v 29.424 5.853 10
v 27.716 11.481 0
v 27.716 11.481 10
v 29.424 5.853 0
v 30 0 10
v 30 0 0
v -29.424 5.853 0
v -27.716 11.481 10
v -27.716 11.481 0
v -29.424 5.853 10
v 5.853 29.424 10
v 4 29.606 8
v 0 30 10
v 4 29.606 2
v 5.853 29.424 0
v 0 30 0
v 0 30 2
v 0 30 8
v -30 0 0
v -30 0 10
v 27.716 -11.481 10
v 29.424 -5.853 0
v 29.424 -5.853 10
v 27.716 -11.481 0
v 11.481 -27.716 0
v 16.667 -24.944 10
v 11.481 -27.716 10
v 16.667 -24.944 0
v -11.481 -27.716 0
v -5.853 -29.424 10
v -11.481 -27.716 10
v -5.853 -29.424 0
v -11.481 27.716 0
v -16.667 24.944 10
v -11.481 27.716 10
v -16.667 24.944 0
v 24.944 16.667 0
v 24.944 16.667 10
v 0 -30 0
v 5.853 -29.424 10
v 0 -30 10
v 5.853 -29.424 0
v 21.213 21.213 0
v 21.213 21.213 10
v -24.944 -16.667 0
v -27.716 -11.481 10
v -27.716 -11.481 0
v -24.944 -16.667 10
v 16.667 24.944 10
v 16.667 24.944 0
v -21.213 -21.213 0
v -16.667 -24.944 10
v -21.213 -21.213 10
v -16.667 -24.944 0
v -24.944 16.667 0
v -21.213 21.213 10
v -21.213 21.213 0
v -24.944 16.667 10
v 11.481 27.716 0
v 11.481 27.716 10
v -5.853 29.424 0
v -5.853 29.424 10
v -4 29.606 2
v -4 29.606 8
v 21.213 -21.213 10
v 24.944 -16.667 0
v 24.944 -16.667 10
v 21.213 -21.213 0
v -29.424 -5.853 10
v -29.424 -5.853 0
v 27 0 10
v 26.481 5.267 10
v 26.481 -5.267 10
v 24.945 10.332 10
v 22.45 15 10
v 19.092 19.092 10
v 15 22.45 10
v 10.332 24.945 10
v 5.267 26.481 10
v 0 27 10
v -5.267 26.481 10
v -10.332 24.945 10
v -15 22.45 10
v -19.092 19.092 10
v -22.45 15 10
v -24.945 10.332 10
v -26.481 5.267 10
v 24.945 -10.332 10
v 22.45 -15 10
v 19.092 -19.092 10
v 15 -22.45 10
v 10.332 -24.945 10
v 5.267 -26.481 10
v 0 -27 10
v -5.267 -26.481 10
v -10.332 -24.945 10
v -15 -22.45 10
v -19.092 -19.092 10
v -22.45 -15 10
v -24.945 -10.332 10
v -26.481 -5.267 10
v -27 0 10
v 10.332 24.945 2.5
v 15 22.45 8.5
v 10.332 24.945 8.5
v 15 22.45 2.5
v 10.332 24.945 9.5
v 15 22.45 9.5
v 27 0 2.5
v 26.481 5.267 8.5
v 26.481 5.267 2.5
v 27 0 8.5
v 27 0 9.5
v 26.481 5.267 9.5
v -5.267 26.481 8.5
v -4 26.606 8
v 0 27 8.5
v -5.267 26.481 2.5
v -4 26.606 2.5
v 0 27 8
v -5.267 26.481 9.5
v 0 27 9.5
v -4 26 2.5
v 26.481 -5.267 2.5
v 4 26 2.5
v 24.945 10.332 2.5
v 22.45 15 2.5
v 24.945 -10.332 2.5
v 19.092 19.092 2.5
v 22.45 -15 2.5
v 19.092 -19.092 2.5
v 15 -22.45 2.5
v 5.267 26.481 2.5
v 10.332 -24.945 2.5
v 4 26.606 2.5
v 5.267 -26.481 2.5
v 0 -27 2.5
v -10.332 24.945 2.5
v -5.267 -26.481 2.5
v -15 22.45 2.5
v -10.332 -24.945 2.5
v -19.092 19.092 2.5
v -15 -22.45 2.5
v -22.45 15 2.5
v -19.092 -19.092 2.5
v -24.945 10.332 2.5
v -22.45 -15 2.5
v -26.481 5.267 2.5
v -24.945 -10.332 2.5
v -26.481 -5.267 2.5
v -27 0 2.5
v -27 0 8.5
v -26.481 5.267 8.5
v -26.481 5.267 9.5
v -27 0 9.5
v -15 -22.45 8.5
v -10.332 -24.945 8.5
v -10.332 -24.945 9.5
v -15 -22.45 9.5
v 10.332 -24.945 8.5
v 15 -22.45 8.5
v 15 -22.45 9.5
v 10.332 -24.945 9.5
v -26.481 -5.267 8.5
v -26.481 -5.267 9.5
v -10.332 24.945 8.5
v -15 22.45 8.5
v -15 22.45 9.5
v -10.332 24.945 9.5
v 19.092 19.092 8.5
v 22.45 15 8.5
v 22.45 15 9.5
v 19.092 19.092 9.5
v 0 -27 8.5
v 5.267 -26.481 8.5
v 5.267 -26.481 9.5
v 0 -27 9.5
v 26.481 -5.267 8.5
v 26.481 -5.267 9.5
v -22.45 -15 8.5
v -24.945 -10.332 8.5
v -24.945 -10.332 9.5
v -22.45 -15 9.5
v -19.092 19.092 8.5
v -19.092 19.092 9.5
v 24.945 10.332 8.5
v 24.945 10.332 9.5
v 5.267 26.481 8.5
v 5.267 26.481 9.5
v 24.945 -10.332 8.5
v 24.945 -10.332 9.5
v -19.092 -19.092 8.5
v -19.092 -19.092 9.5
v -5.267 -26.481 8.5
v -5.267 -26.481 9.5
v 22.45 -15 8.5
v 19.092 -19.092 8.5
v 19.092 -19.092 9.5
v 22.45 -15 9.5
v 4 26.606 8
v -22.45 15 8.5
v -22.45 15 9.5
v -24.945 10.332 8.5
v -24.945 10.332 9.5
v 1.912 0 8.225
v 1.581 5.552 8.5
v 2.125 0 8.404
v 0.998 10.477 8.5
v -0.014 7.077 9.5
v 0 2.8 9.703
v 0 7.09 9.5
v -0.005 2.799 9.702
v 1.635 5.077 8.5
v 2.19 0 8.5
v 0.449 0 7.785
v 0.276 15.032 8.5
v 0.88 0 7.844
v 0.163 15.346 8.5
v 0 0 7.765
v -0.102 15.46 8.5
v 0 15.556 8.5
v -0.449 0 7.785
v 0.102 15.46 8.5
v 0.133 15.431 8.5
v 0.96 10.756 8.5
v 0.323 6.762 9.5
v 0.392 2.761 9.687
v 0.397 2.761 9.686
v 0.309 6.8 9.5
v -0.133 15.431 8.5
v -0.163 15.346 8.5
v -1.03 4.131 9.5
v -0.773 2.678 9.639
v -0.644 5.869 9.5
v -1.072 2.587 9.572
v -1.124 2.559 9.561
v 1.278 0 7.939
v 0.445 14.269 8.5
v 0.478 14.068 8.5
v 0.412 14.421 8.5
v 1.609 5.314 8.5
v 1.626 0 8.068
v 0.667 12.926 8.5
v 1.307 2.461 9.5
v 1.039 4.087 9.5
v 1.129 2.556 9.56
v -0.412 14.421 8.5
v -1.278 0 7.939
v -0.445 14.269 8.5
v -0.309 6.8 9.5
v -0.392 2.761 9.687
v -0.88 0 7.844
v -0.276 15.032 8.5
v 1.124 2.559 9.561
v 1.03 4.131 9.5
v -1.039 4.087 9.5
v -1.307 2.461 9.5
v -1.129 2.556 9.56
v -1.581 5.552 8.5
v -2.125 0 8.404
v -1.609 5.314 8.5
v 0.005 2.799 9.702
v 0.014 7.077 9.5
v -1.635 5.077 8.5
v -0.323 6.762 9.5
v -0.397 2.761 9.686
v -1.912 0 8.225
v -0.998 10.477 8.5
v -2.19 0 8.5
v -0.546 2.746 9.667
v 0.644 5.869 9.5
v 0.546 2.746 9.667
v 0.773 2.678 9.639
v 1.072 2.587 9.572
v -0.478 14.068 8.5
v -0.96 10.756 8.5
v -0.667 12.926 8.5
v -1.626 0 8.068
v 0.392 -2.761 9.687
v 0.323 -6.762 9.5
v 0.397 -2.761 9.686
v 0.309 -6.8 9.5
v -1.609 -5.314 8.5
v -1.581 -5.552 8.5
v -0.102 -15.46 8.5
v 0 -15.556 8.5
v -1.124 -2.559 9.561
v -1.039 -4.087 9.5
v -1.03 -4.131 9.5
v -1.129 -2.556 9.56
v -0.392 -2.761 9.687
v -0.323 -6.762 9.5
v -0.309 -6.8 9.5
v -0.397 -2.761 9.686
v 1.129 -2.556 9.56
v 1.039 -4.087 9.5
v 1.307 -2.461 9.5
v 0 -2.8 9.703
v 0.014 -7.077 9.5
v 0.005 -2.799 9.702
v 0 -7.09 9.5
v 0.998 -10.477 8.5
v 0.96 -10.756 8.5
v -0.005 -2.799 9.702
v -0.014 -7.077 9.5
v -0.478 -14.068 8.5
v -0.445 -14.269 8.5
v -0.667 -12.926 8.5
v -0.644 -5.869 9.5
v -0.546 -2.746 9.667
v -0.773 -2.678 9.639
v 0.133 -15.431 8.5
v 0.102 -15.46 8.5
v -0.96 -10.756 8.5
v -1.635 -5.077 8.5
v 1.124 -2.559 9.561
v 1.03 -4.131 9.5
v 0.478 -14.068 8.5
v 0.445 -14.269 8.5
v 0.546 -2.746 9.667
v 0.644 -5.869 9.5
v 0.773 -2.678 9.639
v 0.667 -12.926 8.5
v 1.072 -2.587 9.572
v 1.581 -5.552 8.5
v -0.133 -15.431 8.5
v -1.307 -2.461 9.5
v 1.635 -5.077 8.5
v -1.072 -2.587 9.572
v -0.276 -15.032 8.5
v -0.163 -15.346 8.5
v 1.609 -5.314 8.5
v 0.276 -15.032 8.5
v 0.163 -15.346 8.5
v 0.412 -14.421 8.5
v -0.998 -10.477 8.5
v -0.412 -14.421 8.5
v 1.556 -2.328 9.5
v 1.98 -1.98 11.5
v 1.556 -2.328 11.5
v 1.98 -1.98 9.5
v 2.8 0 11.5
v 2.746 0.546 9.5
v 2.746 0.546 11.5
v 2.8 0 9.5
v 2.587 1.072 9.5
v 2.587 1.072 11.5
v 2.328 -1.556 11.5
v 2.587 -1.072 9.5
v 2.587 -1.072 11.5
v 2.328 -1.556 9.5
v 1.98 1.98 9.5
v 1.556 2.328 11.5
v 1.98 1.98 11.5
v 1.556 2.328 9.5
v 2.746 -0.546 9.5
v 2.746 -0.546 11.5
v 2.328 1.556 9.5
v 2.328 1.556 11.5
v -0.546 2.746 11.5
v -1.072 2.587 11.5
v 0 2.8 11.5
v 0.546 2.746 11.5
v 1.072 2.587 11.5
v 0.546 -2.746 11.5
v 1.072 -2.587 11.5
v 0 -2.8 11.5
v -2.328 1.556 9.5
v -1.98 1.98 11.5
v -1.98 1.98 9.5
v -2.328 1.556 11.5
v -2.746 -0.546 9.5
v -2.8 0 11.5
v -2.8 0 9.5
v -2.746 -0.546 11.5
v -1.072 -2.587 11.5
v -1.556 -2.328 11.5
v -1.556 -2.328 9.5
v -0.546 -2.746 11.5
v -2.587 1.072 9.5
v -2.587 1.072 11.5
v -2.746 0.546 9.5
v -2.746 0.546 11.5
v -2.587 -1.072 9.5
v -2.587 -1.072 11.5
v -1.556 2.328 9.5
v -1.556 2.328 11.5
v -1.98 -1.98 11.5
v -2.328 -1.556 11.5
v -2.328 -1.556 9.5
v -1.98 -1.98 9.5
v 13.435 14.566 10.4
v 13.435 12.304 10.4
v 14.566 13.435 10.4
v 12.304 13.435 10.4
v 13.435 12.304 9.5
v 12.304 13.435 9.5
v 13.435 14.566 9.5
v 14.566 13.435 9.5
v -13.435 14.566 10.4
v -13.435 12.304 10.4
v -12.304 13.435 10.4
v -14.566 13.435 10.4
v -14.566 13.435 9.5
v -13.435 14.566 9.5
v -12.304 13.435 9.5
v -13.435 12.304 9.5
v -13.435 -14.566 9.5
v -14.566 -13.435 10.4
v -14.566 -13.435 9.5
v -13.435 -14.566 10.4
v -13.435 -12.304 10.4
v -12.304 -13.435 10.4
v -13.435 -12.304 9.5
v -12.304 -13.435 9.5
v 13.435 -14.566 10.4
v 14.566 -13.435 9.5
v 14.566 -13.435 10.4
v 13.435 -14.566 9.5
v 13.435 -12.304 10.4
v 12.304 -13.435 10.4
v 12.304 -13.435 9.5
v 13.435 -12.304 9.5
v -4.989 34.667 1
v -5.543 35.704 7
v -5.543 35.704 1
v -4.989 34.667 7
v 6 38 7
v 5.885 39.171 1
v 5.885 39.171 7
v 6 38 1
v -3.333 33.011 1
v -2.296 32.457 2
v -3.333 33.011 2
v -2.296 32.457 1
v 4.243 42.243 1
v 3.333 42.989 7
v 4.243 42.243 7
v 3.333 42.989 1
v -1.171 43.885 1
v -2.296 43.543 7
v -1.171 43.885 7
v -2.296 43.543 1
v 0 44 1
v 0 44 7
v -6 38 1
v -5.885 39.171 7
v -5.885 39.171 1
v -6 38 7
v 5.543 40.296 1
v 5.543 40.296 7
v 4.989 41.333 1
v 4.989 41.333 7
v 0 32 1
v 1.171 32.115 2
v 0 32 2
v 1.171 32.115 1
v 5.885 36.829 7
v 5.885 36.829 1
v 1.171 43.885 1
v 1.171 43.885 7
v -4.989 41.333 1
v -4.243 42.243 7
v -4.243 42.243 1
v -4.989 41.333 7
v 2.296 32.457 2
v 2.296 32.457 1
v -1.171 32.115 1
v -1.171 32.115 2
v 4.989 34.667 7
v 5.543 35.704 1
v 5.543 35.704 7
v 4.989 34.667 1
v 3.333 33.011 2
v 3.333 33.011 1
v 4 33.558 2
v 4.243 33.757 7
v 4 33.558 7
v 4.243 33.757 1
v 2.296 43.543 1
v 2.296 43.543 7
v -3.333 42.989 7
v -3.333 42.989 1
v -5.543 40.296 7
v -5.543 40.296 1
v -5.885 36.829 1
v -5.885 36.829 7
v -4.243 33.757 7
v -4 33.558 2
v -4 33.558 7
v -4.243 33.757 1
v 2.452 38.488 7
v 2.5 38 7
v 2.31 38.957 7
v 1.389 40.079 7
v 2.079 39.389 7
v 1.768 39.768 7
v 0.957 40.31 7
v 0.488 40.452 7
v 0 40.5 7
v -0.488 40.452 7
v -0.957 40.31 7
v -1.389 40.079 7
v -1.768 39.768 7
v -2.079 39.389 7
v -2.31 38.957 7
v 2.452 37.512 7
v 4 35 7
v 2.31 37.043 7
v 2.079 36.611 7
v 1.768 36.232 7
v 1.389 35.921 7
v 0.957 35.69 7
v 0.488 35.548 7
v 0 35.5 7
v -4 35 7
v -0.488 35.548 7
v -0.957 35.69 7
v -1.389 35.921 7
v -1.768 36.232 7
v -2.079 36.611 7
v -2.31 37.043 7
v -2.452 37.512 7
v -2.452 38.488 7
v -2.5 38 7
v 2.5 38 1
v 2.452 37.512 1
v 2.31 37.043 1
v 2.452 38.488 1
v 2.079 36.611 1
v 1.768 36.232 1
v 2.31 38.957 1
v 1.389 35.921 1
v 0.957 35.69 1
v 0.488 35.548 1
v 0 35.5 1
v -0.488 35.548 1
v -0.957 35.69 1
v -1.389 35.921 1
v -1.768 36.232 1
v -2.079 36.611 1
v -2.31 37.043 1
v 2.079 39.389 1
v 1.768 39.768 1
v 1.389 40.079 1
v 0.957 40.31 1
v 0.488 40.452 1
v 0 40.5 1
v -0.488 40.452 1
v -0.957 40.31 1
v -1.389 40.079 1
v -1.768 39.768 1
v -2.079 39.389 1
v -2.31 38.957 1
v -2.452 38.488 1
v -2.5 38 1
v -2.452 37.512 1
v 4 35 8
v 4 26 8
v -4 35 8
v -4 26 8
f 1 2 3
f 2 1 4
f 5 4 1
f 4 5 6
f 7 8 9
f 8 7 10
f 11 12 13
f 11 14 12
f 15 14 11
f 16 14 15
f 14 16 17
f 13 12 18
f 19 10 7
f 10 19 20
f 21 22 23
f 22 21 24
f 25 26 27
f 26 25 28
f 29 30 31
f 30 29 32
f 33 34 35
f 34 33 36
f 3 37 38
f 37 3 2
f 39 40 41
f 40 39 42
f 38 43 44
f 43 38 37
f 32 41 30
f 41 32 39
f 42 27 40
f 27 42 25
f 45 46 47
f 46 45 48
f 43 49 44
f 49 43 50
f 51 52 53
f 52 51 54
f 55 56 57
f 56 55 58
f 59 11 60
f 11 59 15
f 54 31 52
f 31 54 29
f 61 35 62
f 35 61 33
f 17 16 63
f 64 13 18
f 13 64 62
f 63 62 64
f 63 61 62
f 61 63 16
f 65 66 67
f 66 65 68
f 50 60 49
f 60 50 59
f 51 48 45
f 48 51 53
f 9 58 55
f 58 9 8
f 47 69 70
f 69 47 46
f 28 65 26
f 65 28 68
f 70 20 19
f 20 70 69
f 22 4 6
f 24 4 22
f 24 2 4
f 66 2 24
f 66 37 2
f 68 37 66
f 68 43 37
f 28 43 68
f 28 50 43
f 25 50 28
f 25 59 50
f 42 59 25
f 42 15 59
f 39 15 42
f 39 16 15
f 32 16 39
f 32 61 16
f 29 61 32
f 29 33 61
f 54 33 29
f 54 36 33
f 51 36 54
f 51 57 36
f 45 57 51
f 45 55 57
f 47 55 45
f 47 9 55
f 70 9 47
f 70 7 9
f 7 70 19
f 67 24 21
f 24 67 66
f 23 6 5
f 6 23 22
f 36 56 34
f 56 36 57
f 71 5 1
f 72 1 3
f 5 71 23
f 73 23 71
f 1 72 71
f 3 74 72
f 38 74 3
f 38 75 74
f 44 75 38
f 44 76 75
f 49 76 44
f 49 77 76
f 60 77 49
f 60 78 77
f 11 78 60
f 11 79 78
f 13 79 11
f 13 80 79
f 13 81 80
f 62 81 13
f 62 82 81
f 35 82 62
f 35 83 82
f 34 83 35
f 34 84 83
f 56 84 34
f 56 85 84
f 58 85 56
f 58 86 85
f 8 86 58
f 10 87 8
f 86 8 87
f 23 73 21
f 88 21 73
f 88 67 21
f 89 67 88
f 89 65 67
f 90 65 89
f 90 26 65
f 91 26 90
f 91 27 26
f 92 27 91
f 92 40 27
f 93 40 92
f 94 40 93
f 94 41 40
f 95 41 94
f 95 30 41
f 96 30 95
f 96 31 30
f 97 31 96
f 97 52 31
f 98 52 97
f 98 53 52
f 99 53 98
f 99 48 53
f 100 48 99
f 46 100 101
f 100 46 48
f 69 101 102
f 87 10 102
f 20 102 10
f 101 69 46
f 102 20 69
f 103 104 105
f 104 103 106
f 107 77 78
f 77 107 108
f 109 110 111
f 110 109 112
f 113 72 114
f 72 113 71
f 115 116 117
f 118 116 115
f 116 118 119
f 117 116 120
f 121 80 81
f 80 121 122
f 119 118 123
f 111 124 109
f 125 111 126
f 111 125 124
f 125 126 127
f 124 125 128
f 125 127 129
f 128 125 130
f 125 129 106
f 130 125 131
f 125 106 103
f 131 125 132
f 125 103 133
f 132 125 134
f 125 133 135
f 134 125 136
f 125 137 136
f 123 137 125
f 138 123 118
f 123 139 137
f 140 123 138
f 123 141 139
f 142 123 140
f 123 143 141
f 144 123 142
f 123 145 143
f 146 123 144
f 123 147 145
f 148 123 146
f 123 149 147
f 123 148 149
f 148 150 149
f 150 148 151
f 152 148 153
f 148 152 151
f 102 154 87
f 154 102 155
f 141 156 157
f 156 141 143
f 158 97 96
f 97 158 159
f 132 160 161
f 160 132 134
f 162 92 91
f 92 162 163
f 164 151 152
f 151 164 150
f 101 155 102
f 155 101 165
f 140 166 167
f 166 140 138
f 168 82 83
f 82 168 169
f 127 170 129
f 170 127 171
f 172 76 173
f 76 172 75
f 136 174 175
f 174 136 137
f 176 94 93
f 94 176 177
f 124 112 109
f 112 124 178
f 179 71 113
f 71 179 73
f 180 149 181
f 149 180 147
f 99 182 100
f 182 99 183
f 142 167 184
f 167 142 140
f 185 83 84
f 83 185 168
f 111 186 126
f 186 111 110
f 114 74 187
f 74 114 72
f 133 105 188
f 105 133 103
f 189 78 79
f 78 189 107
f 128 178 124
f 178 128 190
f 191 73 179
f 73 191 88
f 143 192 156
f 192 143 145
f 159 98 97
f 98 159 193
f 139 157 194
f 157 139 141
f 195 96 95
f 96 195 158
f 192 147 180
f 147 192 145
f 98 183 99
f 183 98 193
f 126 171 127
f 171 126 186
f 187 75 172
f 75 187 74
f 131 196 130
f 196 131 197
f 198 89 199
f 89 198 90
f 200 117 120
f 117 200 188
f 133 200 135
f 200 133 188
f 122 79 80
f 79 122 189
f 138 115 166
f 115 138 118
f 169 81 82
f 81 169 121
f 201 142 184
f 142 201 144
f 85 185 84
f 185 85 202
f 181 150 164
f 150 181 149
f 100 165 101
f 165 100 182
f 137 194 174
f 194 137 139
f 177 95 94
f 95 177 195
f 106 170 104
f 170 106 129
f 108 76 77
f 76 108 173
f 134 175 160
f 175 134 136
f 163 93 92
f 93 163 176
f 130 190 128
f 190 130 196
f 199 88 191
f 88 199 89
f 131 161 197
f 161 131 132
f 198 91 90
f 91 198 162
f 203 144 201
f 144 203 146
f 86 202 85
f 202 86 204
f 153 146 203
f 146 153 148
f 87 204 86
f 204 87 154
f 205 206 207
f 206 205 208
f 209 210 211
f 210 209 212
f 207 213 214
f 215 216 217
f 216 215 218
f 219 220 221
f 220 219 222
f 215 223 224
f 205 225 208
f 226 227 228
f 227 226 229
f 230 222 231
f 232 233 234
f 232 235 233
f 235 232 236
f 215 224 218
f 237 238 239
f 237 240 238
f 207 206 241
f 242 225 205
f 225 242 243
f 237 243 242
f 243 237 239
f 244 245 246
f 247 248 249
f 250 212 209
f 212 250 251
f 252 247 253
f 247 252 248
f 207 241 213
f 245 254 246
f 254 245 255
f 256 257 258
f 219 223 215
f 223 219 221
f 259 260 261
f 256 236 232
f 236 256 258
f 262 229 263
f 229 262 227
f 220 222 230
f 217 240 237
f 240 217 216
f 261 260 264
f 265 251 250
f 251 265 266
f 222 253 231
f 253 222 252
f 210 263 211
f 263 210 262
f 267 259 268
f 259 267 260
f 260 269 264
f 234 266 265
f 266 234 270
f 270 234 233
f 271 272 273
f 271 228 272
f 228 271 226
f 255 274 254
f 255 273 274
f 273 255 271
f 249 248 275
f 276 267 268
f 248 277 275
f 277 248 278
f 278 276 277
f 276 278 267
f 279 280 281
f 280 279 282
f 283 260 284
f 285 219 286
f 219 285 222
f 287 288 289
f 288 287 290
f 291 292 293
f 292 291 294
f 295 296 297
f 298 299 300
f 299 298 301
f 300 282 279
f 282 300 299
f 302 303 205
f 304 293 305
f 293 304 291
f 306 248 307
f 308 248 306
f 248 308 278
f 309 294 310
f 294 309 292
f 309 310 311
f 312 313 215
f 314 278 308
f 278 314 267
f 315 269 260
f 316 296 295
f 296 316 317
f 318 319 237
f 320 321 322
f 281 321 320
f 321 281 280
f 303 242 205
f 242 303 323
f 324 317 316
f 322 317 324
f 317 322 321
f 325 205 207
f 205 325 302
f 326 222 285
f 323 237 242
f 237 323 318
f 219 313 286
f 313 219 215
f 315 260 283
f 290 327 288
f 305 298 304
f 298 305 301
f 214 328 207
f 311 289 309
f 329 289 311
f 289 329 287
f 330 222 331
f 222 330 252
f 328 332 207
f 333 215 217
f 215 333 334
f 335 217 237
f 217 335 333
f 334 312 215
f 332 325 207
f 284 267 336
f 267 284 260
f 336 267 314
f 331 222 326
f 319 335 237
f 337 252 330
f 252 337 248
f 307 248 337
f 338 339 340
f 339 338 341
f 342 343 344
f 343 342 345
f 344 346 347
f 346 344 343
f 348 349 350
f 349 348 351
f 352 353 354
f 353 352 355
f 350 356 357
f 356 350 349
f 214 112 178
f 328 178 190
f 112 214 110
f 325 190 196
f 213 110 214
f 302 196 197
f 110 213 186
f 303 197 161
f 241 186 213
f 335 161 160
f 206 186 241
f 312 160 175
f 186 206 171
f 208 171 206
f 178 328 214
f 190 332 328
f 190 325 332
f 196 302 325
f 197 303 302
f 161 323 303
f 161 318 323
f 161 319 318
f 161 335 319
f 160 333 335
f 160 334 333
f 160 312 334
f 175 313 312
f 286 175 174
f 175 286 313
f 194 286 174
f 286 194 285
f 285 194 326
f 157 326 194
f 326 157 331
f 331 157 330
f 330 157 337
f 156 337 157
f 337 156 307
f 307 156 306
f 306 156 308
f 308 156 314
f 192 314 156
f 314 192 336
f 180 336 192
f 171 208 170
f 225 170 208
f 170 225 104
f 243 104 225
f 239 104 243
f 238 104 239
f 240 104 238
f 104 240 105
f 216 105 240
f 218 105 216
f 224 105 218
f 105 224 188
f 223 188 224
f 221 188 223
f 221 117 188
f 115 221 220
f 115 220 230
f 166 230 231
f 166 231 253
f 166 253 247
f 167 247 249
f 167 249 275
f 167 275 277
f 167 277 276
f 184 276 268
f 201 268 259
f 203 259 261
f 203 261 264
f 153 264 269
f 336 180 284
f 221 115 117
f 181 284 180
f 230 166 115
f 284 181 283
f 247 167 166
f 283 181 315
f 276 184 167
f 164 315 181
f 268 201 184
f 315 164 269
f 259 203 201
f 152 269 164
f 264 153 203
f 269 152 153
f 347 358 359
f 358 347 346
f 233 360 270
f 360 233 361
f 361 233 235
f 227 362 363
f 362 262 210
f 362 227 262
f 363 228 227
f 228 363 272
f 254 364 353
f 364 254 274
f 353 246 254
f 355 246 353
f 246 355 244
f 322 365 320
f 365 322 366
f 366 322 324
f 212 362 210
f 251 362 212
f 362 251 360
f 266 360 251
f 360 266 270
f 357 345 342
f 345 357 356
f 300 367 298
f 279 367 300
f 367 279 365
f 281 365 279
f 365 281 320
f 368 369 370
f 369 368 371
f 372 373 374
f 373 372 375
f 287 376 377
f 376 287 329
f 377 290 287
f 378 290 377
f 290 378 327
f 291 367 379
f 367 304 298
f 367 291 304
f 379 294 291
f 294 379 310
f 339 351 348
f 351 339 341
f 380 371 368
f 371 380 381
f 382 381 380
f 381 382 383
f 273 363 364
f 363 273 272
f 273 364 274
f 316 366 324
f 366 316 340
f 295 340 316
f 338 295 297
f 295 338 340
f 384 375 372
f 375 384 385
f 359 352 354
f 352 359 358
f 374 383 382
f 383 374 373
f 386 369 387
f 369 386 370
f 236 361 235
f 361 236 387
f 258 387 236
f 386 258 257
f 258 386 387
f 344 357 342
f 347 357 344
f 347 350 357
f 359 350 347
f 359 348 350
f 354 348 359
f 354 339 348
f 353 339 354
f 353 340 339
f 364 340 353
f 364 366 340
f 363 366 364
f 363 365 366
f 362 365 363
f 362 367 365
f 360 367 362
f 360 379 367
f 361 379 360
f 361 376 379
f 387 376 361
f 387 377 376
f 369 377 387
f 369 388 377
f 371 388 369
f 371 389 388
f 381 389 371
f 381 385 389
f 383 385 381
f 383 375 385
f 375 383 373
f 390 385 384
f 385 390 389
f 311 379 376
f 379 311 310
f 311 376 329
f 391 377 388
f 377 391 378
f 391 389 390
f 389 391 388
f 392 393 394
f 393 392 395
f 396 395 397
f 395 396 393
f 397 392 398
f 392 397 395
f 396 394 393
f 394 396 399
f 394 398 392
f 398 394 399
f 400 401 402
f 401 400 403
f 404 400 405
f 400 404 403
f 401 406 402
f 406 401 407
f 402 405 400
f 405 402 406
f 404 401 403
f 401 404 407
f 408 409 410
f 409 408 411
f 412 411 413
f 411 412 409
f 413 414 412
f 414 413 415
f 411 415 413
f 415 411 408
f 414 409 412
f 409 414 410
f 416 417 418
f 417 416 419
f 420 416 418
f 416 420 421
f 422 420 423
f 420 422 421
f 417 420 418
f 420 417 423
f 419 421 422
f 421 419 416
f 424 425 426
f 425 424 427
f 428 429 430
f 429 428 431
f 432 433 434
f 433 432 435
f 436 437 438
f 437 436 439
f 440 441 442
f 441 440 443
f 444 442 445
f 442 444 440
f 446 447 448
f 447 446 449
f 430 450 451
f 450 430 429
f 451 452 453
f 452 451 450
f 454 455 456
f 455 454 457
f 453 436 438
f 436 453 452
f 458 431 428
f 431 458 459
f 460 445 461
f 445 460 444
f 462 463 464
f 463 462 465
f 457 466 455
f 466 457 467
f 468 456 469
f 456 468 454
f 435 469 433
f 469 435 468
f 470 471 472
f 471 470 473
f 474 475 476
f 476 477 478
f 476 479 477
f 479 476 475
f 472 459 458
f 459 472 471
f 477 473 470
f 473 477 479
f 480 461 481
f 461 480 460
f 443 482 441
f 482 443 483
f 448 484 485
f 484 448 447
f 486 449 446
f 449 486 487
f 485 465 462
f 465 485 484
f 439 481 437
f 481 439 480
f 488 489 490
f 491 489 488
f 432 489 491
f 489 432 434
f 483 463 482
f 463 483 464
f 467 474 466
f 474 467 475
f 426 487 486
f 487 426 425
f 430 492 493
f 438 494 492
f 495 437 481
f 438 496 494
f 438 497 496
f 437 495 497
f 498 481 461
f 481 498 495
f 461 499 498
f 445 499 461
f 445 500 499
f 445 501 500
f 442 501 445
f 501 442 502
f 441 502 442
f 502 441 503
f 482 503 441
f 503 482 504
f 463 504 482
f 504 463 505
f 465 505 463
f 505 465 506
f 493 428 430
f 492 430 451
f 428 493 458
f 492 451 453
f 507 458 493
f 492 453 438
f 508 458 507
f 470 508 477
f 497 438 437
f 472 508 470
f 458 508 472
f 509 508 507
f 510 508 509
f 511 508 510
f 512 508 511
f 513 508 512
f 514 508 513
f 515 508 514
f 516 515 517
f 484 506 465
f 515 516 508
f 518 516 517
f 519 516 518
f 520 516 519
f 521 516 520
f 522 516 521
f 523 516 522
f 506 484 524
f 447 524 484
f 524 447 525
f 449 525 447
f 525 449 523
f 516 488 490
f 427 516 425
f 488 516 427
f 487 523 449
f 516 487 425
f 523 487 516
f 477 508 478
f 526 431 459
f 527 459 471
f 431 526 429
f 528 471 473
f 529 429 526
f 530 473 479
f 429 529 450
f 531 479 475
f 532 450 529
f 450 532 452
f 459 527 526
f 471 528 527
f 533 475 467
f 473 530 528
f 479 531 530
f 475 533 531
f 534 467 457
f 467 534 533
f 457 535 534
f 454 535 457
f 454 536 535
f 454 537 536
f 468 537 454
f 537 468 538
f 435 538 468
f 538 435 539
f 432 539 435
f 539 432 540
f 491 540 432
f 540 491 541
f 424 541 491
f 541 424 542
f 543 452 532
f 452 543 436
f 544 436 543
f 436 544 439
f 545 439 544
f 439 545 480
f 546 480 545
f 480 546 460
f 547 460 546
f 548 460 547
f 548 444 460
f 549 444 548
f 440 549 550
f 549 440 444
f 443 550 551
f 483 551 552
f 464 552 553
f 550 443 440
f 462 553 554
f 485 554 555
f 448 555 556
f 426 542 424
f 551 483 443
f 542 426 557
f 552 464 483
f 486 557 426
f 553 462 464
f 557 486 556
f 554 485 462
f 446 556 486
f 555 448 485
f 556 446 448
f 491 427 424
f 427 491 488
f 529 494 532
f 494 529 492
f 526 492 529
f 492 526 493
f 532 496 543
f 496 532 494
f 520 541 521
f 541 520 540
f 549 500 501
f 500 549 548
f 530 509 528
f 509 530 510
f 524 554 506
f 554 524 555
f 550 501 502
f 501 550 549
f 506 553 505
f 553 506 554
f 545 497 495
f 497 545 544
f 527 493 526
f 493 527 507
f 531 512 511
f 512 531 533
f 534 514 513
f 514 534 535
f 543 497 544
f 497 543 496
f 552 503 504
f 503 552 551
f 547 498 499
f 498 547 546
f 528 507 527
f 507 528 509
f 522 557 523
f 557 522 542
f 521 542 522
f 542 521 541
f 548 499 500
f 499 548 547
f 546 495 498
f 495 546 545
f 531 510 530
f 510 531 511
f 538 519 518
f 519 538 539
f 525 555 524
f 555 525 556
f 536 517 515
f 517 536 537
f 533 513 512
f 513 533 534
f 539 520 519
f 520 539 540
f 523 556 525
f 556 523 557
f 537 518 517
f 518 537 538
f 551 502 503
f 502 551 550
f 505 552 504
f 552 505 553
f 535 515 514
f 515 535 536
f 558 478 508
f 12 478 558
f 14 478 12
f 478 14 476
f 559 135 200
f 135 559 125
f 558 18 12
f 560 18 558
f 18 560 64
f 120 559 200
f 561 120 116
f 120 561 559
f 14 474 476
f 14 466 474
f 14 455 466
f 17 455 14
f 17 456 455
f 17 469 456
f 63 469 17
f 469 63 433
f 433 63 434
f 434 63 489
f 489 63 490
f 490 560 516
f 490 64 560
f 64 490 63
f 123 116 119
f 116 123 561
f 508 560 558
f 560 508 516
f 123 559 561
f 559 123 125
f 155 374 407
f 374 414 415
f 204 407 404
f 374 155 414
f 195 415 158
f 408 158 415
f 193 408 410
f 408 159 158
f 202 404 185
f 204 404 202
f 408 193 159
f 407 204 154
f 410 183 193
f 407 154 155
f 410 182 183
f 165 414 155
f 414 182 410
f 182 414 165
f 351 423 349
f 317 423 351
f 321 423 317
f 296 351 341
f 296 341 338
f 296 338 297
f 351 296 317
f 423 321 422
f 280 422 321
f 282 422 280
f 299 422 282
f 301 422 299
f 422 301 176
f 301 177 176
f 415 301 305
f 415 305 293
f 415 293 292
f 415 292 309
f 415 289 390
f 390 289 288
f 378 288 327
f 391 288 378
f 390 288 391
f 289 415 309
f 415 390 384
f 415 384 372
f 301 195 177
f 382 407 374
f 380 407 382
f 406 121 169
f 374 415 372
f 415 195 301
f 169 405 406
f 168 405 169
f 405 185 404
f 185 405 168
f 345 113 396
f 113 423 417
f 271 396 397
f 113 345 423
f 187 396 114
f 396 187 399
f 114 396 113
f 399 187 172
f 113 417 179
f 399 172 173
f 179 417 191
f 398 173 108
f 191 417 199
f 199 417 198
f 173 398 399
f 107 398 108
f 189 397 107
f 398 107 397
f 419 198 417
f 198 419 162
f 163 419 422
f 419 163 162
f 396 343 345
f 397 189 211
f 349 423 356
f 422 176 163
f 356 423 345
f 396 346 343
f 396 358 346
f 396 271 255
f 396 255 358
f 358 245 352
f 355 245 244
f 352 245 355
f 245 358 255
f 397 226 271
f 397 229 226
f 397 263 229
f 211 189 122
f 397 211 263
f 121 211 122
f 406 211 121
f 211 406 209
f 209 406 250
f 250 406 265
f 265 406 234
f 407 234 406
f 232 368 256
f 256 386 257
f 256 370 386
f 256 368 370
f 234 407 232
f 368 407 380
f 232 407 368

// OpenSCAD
// Compass - brass pocket compass with a directional needle
// Low-poly, single connected manifold, rests on Z = 0

$fn = 32;

CASE_R  = 30.0;   // outer radius of the brass case
CASE_H  = 10.0;   // case height (z 0..10)
WALL_T  = 3.0;    // side wall thickness
FLOOR_H = 2.5;    // solid bottom plate thickness
INNER_R = CASE_R - WALL_T;  // 27.0 inner cavity radius

FACE_R  = INNER_R + 0.2;    // 27.2 dial/glass disc, sinks 0.2 into the wall
FACE_Z0 = 8.5;              // disc bottom
FACE_H  = 1.0;              // disc thickness (top at z = 9.5)

NEEDLE_L = 20.0;            // needle half length
NEEDLE_T = 8.8;             // needle centre height (sinks into the dial disc)

module case_body() {
    difference() {
        cylinder(r = CASE_R, h = CASE_H);
        translate([0, 0, FLOOR_H]) cylinder(r = INNER_R, h = CASE_H);
    }
}

module dial() {
    // flat face disc that closes the top of the case
    translate([0, 0, FACE_Z0]) cylinder(r = FACE_R, h = FACE_H);
}

module needle() {
    // north half - points +Y
    translate([0, 0, NEEDLE_T])
        rotate([-90, 0, 0])
            scale([1, 0.45, 1])
                cylinder(r1 = 2.3, r2 = 0.2, h = NEEDLE_L);
    // south half - points -Y
    translate([0, 0, NEEDLE_T])
        rotate([90, 0, 0])
            scale([1, 0.45, 1])
                cylinder(r1 = 2.3, r2 = 0.2, h = NEEDLE_L);
    // centre hub / pivot cap
    translate([0, 0, FACE_Z0]) cylinder(r = 2.8, h = 3.0);
}

module ticks() {
    // four diagonal dial marks, sunk 0.3 into the face disc
    for (a = [45 : 90 : 315]) {
        rotate([0, 0, a])
            translate([18.2, -0.8, FACE_Z0 + 0.7])
                cube([1.6, 1.6, 1.2]);
    }
}

module bail() {
    // flat lug reaching out of the case
    translate([-4, 26, 2]) cube([8, 9, 6]);
    // chain ring, overlapping the lug by 3 units
    difference() {
        translate([0, 38, 1]) cylinder(r = 6, h = 6);
        translate([0, 38, 0]) cylinder(r = 2.5, h = 8);
    }
}

union() {
    case_body();
    dial();
    needle();
    ticks();
    bail();
}
